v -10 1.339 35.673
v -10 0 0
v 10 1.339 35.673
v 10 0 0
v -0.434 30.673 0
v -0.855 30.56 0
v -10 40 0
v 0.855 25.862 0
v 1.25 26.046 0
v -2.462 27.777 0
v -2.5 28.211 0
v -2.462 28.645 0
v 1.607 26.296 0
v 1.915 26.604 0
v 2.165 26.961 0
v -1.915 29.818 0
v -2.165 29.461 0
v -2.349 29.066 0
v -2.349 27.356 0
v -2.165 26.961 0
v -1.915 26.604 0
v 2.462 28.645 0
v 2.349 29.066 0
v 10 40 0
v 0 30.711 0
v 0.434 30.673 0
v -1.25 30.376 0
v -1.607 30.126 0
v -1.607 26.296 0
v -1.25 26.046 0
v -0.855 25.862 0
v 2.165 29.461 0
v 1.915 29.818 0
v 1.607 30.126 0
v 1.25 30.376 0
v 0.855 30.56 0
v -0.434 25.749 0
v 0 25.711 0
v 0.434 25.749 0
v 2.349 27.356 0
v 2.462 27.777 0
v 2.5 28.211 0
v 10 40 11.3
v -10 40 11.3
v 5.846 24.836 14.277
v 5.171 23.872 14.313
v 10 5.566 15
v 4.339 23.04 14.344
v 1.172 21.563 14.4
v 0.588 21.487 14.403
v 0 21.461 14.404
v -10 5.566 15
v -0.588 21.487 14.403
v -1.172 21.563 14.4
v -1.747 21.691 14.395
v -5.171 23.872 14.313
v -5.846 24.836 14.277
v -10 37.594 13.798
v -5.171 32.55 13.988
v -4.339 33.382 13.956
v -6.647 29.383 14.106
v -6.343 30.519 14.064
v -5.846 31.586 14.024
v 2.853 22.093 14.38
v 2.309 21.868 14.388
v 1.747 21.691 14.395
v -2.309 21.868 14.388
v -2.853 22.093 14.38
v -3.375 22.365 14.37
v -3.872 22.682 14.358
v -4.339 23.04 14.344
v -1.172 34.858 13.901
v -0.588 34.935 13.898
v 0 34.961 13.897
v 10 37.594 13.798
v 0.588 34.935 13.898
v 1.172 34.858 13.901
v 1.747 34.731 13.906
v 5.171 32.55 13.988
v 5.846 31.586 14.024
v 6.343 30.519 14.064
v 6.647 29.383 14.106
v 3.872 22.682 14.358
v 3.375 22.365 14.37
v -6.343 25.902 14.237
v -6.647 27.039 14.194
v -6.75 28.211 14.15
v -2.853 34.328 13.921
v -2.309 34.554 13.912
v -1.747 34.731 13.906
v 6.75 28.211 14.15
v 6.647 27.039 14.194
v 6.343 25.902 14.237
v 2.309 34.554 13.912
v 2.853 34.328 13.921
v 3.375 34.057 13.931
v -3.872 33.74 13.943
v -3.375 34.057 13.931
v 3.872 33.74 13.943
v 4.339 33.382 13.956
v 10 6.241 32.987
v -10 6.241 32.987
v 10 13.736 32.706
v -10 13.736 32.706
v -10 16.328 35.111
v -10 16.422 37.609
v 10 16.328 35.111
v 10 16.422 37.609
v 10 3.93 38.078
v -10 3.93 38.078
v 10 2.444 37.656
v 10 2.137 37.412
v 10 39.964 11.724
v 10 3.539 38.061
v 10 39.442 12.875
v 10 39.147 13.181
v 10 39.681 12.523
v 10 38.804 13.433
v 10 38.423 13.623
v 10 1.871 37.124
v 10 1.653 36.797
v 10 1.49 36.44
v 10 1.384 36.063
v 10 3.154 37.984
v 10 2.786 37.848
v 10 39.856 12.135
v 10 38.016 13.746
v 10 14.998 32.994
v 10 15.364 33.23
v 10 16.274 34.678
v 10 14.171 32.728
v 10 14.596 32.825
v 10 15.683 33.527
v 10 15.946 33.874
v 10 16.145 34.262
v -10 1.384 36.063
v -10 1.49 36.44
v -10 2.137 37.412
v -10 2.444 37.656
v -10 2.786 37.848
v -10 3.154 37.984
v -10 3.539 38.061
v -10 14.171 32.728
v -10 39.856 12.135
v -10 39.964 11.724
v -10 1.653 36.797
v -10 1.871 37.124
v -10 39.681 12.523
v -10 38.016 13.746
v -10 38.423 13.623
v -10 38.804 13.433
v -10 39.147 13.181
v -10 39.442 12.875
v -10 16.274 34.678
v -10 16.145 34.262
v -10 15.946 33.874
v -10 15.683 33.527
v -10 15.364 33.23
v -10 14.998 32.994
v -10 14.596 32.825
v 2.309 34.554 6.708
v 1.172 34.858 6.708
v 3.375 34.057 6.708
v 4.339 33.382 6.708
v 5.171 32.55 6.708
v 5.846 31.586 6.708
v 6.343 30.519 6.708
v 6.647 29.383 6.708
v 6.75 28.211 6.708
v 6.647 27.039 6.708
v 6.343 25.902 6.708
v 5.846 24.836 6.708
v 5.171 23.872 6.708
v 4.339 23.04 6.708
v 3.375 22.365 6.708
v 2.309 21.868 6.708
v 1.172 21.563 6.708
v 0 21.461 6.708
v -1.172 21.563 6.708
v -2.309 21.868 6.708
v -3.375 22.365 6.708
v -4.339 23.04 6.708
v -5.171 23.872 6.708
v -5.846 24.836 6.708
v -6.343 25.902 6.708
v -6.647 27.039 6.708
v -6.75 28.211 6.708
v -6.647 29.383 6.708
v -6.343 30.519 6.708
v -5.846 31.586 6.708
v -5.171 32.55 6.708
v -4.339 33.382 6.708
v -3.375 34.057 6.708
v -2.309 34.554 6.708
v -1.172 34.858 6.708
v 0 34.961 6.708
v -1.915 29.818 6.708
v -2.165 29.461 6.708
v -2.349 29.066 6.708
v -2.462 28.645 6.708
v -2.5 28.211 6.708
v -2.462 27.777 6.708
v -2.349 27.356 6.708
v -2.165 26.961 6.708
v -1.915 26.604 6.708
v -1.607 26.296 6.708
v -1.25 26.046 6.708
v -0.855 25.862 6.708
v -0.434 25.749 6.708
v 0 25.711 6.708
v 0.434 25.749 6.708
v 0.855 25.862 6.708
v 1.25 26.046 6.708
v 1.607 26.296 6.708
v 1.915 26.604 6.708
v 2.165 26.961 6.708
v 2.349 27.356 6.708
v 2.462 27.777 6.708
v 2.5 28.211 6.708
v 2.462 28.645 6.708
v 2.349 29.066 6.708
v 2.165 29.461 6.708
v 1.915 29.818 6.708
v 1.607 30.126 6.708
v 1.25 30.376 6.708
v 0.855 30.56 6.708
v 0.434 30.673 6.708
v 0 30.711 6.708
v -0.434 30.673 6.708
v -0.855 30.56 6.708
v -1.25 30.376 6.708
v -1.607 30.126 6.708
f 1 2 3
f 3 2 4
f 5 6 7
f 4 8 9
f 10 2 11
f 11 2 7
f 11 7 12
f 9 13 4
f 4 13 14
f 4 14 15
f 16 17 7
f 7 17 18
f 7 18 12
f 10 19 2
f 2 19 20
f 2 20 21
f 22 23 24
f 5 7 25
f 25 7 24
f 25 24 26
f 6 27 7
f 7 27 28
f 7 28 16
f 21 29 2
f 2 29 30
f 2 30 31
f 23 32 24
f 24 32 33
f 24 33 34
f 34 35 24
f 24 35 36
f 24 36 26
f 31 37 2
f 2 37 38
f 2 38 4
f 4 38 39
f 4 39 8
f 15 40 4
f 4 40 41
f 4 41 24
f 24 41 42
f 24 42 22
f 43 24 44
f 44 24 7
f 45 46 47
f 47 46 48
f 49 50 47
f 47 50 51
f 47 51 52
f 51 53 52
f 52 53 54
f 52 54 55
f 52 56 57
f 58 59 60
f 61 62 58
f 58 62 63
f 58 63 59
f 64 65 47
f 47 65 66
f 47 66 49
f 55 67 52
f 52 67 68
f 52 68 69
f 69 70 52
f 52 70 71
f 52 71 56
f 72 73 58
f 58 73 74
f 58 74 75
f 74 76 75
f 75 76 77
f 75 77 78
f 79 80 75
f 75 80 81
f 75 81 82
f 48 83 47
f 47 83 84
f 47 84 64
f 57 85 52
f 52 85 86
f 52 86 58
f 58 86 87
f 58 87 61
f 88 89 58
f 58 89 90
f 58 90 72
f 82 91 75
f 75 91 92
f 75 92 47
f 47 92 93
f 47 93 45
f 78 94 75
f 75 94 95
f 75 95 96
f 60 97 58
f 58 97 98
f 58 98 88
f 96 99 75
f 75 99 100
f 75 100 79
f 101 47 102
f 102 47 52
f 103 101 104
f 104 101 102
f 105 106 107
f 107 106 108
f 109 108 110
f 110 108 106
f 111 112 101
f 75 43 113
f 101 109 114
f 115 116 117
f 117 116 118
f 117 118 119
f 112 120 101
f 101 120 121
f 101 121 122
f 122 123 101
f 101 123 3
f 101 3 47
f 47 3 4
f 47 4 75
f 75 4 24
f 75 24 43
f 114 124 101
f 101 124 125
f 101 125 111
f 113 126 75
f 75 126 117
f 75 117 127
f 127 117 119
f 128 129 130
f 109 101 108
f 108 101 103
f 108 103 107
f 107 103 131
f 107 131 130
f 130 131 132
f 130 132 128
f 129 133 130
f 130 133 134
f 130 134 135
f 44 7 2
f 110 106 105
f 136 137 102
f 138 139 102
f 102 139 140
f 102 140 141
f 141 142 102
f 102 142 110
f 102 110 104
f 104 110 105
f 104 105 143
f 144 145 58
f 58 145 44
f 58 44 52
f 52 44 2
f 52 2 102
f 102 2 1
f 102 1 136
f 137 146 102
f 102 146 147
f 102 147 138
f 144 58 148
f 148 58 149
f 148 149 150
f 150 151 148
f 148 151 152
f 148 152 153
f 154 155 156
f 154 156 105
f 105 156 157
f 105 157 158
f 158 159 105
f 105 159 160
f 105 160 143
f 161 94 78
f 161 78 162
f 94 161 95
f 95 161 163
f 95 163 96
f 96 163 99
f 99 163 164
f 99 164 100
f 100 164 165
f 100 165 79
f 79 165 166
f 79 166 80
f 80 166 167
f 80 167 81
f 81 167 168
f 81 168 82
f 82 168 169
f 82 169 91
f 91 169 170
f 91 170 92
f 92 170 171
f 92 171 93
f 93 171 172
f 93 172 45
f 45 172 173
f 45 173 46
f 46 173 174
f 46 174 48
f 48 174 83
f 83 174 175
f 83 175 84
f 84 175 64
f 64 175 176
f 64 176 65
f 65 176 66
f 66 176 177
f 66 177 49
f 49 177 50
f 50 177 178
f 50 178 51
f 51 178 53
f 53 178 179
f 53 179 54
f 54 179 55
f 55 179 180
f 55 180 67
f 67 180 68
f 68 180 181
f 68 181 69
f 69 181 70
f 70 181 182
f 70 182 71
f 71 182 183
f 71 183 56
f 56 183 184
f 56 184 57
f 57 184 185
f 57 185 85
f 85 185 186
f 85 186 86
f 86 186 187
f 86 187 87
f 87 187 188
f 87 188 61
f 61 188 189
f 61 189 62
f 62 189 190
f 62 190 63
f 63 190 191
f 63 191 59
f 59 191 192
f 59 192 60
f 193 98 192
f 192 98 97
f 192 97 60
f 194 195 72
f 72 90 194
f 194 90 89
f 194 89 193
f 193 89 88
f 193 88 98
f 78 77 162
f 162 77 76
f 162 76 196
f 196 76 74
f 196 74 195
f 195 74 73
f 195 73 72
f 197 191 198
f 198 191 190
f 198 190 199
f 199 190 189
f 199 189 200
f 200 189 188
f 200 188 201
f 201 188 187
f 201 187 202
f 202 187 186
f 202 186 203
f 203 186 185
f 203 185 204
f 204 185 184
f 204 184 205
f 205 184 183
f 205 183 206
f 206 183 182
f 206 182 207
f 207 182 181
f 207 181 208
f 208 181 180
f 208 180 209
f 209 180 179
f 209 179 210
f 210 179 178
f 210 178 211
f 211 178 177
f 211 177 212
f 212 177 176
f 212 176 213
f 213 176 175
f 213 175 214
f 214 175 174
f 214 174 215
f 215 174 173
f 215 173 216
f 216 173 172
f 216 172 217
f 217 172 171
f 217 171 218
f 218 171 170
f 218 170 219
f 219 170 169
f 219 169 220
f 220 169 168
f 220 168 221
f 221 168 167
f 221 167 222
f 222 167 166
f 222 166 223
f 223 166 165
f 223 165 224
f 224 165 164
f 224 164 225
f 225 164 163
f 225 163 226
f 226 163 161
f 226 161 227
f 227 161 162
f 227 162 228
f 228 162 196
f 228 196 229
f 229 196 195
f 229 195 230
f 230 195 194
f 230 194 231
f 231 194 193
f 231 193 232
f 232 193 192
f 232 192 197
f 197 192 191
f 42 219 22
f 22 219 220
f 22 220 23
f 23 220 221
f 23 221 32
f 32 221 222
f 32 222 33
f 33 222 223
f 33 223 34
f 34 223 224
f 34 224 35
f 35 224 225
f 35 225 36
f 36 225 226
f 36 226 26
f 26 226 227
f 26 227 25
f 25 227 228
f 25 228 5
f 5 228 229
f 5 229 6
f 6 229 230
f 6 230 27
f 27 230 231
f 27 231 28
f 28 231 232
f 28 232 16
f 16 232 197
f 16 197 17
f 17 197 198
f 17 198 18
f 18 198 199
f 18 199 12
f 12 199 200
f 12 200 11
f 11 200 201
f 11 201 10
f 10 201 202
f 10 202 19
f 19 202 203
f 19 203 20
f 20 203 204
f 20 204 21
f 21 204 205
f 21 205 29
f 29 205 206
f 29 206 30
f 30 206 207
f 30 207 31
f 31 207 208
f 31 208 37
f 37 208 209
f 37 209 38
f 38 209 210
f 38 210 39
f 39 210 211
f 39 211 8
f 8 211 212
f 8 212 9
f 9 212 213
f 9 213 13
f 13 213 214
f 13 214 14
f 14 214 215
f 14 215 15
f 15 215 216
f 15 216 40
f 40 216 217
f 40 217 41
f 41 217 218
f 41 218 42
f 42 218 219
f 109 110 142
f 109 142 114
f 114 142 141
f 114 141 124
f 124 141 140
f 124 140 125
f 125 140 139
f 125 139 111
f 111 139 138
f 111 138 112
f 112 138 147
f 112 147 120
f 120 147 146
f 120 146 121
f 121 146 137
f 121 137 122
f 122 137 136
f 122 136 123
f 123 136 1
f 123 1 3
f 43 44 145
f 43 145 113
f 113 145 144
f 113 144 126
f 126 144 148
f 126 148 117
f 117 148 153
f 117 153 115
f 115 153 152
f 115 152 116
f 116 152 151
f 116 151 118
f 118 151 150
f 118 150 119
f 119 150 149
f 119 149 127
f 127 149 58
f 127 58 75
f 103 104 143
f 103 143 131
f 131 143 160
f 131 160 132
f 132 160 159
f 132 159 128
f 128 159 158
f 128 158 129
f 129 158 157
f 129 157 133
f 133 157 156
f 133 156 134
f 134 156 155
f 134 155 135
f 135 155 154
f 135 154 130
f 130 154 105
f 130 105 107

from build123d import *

# Parameters (mm, degrees)
BOSS_EXTRUDE1_DEPTH            = 10
SKETCH5_R                      = 6.75
CUT_EXTRUDE1_DEPTH             = 7
CUT_EXTRUDE1_DIRECTION_2_REACH = 26.463
CUT_EXTRUDE2_REACH             = 8.708
SKETCH6_R                      = 2.5
FILLET1_R                      = 2.5


with BuildPart() as part:
    # Sketch4 → Boss-Extrude1 (new body, symmetric)
    with BuildSketch(Plane(origin=(0, 0, 0), x_dir=(0, 0, -1), z_dir=(1, 0, 0))):
        Polygon((0, 0), (0, 40), (-13.707990749, 40), (-15, 5.56634393), (-32.987342463, 6.241259565), (-32.612389332, 16.2342276), (-37.60887335, 16.421704166), (-38.171303046, 1.432252113), align=None)
    extrude(amount=BOSS_EXTRUDE1_DEPTH, both=True)

    # Sketch5 → Cut-Extrude1 (cut)
    with BuildSketch(Plane.XY.offset(13.707990749)):
        with Locations((0, 28.210852083)):
            Circle(SKETCH5_R)
    extrude(amount=-CUT_EXTRUDE1_DEPTH, mode=Mode.SUBTRACT)

    # Sketch5 → Cut-Extrude1 direction 2 (cut, up to next)
    with BuildSketch(Plane.XY.offset(13.707990749), mode=Mode.PRIVATE) as cut_extrude1_direction_2_sk1:
        with Locations((0, 28.210852083)):
            Circle(SKETCH5_R)
    cut_extrude1_direction_2_tool1 = extrude(cut_extrude1_direction_2_sk1.sketch, amount=CUT_EXTRUDE1_DIRECTION_2_REACH, mode=Mode.PRIVATE) & part.part
    add(cut_extrude1_direction_2_tool1.solids().sort_by_distance((0, 28.210852, 13.707991))[0], mode=Mode.SUBTRACT)

    # Sketch6 → Cut-Extrude2 (cut, up to next)
    with BuildSketch(Plane.XY.offset(6.707990749), mode=Mode.PRIVATE) as cut_extrude2_sk1:
        with Locations((0, 28.210852083)):
            Circle(SKETCH6_R)
    cut_extrude2_tool1 = extrude(cut_extrude2_sk1.sketch, amount=-CUT_EXTRUDE2_REACH, mode=Mode.PRIVATE) & part.part
    add(cut_extrude2_tool1.solids().sort_by_distance((0, 28.210852, 6.707991))[0], mode=Mode.SUBTRACT)

    # Fillet1
    fillet1_edges = [part.edges().sort_by_distance(p)[0] for p in [
        (0, 1.432252113, 38.171303046),
        (0, 16.2342276, 32.612389332),
        (0, 40, 13.707990749),
    ]]
    fillet(fillet1_edges, radius=FILLET1_R)


solid = part.part
